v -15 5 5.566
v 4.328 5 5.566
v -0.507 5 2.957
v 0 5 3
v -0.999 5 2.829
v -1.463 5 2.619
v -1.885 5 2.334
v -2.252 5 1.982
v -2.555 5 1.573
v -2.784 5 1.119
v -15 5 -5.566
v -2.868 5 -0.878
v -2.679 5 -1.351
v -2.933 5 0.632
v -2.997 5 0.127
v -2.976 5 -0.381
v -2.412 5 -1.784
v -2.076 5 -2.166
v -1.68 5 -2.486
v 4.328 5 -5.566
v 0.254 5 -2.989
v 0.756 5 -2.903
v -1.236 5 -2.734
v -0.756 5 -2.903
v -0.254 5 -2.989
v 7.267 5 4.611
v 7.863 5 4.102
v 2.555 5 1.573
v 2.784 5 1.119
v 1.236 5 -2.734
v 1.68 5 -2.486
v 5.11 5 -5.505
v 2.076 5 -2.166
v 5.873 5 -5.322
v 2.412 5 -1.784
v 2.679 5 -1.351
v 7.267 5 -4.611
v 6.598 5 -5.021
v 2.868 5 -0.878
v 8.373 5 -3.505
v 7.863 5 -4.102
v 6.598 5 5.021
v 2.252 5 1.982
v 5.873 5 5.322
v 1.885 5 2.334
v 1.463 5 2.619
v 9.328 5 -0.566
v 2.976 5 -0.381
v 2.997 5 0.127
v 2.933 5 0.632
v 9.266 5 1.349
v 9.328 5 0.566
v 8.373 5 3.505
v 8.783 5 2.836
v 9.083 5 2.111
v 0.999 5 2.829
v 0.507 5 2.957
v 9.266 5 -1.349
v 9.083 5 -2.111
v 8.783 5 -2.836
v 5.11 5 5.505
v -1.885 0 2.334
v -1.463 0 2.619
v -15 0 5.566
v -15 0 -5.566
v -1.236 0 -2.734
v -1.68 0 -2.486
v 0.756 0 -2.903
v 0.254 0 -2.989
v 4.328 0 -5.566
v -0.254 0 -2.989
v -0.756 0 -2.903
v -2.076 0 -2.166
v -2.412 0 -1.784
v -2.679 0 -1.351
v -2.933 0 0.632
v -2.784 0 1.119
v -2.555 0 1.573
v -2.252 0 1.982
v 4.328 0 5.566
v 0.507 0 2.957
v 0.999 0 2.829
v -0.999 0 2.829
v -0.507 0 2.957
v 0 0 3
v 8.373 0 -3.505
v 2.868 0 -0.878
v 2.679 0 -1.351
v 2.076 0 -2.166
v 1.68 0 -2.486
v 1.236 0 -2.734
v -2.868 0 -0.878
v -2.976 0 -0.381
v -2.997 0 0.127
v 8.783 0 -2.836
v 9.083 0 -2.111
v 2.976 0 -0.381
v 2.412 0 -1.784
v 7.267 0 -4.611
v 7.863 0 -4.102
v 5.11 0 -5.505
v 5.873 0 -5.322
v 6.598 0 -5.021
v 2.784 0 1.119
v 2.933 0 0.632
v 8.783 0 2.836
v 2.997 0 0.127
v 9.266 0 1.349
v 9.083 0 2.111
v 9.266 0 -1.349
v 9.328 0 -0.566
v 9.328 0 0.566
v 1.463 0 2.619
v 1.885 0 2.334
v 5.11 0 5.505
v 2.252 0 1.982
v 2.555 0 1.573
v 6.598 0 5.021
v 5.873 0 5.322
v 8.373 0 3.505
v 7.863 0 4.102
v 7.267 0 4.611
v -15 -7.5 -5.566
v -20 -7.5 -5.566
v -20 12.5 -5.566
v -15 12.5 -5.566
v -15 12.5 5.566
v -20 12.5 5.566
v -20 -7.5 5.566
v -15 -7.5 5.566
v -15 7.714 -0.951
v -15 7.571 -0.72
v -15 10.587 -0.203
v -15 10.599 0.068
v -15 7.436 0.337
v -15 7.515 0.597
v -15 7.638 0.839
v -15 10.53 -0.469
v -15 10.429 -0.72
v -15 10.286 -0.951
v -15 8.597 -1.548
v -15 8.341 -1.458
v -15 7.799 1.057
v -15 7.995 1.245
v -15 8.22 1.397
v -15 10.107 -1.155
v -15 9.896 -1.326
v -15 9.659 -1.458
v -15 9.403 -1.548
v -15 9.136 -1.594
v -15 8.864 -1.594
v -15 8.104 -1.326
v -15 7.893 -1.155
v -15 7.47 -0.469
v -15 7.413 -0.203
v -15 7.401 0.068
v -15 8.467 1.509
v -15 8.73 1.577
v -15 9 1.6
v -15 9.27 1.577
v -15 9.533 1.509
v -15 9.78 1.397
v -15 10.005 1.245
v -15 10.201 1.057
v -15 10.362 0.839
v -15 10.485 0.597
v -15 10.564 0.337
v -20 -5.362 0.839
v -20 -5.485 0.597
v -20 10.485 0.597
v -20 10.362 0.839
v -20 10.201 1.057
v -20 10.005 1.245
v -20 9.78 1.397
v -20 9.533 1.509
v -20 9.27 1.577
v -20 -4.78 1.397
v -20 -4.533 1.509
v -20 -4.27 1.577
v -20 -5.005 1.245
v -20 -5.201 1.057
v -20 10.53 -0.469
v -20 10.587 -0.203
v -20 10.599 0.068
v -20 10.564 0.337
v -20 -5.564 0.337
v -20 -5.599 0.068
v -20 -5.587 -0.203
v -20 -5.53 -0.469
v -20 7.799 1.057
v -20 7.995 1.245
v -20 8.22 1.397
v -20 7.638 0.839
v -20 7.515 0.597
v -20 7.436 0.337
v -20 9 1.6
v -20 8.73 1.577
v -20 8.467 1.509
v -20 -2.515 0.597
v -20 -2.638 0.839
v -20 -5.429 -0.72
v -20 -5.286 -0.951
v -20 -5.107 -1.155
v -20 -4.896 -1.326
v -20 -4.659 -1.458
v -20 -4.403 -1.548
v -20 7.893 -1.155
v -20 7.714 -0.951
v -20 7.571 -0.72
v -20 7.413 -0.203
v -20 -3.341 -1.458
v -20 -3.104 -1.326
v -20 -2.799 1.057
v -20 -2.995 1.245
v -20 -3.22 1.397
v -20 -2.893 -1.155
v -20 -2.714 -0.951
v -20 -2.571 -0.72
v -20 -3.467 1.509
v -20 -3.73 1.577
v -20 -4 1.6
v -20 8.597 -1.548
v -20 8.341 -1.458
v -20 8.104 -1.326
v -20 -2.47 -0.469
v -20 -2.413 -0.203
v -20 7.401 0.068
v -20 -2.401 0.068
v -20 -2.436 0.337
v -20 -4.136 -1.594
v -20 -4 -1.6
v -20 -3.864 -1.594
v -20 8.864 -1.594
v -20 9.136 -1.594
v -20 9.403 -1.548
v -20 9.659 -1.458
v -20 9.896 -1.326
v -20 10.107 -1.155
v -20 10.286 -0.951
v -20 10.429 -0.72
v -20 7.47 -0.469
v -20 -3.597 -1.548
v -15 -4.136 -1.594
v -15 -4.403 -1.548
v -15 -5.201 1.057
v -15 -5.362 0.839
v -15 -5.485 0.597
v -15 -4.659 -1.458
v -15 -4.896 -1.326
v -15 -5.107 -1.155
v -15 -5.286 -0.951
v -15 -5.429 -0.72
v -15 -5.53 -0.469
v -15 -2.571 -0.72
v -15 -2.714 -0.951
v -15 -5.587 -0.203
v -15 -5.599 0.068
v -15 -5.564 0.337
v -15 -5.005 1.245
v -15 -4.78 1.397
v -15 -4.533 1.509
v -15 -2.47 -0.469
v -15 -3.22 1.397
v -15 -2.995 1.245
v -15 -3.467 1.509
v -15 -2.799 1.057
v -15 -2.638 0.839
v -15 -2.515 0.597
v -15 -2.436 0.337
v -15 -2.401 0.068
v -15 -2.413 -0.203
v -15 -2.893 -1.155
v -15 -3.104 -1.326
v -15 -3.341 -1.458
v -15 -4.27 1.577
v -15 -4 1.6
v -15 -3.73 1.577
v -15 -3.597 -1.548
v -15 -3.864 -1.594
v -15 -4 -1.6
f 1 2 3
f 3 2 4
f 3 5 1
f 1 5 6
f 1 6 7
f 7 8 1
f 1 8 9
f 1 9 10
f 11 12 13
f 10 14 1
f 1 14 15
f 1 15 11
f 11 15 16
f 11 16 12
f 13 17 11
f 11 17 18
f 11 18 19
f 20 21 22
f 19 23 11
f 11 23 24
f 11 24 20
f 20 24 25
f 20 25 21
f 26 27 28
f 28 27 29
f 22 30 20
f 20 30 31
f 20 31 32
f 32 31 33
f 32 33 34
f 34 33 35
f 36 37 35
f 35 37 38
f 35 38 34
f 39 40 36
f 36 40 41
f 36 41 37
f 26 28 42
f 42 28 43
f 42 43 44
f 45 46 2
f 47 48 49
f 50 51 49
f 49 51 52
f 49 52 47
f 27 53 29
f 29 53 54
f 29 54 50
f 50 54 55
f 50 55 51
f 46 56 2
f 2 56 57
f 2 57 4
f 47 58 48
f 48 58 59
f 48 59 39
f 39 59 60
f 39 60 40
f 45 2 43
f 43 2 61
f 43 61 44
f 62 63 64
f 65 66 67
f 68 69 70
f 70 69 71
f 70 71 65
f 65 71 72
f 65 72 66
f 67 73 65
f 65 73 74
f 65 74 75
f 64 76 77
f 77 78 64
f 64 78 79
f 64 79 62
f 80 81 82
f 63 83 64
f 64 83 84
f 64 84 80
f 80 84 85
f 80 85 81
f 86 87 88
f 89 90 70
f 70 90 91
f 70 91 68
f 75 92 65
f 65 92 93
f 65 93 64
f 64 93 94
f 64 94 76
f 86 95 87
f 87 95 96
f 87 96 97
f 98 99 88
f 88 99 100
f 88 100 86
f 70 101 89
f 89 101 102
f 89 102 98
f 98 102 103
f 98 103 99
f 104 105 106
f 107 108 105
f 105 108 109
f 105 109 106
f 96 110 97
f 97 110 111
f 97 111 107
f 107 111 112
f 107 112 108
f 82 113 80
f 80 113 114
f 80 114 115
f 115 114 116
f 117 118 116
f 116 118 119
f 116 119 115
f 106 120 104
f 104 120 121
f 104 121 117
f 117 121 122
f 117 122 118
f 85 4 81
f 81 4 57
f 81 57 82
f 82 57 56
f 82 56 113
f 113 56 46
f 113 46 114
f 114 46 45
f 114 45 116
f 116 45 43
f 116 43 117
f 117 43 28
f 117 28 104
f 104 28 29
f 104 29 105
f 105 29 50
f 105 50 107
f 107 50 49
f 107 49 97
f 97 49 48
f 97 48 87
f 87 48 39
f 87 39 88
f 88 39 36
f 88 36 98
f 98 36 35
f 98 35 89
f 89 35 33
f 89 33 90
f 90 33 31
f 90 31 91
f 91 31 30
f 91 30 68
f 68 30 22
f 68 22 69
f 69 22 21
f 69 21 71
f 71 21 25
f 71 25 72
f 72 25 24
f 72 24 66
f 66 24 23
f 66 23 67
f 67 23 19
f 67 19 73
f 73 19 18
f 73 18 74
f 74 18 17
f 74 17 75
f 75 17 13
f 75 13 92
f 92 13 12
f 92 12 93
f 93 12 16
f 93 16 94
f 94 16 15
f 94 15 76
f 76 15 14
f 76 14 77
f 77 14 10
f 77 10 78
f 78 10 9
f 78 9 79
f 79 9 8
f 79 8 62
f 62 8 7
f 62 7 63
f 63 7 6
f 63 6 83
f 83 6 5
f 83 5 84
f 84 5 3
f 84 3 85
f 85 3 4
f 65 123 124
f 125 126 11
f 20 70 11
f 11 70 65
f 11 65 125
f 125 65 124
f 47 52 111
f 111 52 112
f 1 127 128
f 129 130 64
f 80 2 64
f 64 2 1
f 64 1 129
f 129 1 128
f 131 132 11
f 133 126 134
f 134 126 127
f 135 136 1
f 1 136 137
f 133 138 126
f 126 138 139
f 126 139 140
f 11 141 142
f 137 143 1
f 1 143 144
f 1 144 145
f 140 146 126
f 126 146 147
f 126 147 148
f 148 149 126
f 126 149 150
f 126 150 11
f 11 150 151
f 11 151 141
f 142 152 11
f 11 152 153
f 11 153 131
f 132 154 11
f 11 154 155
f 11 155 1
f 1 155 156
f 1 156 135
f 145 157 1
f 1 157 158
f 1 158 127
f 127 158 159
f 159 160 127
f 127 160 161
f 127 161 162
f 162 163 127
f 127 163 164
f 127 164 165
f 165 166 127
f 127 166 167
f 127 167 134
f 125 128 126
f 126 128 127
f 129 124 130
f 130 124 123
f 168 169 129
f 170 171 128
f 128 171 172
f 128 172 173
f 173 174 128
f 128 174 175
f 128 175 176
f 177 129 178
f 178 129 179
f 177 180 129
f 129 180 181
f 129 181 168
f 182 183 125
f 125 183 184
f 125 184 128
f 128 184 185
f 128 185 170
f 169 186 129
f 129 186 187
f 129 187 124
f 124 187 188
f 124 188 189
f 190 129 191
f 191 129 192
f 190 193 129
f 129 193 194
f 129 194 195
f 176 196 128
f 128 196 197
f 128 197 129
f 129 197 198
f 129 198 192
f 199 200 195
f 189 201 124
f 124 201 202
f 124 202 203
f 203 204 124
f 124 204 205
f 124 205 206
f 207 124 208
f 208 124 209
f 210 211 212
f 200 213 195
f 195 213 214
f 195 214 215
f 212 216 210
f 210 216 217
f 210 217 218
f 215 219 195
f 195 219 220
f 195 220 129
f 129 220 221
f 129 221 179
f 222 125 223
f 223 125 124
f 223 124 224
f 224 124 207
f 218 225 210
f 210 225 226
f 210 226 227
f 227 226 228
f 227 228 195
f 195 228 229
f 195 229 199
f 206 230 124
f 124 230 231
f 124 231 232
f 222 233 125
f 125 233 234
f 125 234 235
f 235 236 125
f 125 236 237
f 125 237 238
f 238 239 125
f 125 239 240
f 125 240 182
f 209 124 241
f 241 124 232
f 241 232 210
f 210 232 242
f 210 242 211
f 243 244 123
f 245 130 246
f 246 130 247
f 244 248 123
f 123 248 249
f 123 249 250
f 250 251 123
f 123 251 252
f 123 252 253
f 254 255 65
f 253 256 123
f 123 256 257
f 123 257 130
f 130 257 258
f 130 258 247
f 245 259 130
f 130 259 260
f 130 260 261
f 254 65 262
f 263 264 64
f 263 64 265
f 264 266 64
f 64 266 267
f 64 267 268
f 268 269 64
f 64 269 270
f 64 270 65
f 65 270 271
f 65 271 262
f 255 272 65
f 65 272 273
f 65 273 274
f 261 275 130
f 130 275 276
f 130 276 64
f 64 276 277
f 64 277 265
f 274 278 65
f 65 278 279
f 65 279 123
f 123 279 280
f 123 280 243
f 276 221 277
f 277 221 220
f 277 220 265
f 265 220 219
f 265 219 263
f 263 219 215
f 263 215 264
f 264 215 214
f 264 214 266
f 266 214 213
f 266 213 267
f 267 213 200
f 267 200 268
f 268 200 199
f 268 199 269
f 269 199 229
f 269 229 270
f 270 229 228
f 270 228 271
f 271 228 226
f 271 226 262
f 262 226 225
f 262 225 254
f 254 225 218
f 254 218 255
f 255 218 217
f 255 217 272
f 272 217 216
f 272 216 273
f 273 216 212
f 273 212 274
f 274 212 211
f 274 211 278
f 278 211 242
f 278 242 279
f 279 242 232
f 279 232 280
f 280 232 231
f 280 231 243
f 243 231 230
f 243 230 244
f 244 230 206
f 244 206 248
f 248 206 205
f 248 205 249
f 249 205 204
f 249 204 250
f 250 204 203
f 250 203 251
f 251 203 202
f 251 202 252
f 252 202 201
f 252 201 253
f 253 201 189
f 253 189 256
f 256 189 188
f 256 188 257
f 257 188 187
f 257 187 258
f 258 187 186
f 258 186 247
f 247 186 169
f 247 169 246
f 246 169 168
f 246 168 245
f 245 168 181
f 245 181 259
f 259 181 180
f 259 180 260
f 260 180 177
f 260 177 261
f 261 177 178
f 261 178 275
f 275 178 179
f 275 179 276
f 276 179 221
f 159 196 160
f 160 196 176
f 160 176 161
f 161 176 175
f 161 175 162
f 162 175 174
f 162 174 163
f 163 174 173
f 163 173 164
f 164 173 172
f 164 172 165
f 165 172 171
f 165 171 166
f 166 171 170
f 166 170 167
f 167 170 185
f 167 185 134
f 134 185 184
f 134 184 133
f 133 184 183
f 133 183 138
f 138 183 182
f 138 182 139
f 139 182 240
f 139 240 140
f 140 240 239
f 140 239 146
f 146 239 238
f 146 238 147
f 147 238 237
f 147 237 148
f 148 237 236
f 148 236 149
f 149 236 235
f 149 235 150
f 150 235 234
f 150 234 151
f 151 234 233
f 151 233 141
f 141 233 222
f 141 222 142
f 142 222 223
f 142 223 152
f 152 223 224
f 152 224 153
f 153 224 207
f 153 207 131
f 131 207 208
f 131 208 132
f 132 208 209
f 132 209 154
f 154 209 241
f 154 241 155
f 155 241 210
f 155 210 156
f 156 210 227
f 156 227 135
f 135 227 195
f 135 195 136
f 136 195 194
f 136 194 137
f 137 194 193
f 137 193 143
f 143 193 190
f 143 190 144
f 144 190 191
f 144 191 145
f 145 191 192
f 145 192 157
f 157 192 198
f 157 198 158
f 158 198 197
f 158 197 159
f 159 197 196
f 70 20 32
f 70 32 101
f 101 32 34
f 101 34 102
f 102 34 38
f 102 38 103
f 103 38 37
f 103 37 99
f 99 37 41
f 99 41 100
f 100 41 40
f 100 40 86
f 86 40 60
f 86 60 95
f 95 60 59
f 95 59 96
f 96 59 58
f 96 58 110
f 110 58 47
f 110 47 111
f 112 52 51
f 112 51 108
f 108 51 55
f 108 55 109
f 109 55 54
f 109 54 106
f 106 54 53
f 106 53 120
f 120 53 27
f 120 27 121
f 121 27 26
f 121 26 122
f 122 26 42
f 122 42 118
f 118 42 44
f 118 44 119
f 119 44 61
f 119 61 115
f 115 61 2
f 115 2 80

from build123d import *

# Parameters (mm, degrees)
SKETCH1_W           = 30
SKETCH1_H           = 20
BOSS_EXTRUDE1_DEPTH = 5
SKETCH2_R           = 3
CUT_EXTRUDE1_DEPTH  = 10
SKETCH3_OUTSIDE_W   = 39.28
SKETCH3_OUTSIDE_H   = 29.28
SKETCH3_OUTSIDE_W_2 = 24.327904035
SKETCH3_OUTSIDE_H_2 = 11.132815548
CUT_EXTRUDE2_DEPTH  = 10
SKETCH4_W           = 11.132815548
SKETCH4_H           = 20
BOSS_EXTRUDE2_DEPTH = 5
SKETCH5_R           = 1.6
CUT_EXTRUDE3_DEPTH  = 5
FILLET2_R           = 5


with BuildPart() as part:
    # Sketch1 → Boss-Extrude1 (new body)
    with BuildSketch(Plane(origin=(0, 0, 0), x_dir=(1, 0, 0), z_dir=(0, 1, 0))):
        Rectangle(SKETCH1_W, SKETCH1_H)
    extrude(amount=BOSS_EXTRUDE1_DEPTH)

    # Sketch2 → Cut-Extrude1 (cut)
    with BuildSketch(Plane(origin=(0, 5, 0), x_dir=(1, 0, 0), z_dir=(0, 1, 0))):
        with Locations(Location((0, 0, 0), (0, 0, 270))):
            Circle(SKETCH2_R)
    extrude(amount=-CUT_EXTRUDE1_DEPTH, mode=Mode.SUBTRACT)

    # Sketch3 outside → Cut-Extrude2 (cut)
    with BuildSketch(Plane(origin=(0, 5, 0), x_dir=(1, 0, 0), z_dir=(0, 1, 0))):
        Rectangle(SKETCH3_OUTSIDE_W, SKETCH3_OUTSIDE_H)
        with Locations((-2.836047983, 0)):
            Rectangle(SKETCH3_OUTSIDE_W_2, SKETCH3_OUTSIDE_H_2, mode=Mode.SUBTRACT)
    extrude(amount=-CUT_EXTRUDE2_DEPTH, mode=Mode.SUBTRACT)

    # Sketch4 → Boss-Extrude2 (add)
    with BuildSketch(Plane.ZY.offset(15)):
        with Locations((0, 2.5)):
            Rectangle(SKETCH4_W, SKETCH4_H)
    extrude(amount=BOSS_EXTRUDE2_DEPTH)

    # Sketch5 → Cut-Extrude3 (cut)
    with BuildSketch(Plane.ZY.offset(20)):
        with Locations((0, 9)):
            Circle(SKETCH5_R)
        with Locations(Location((0, -4, 0), (0, 0, 180))):
            Circle(SKETCH5_R)
    extrude(amount=-CUT_EXTRUDE3_DEPTH, mode=Mode.SUBTRACT)

    # Fillet2
    fillet2_edges = [part.edges().sort_by_distance(p)[0] for p in [
        (9.327904035, 2.5, -5.566407774),
        (9.327904035, 2.5, 5.566407774),
    ]]
    fillet(fillet2_edges, radius=FILLET2_R)


solid = part.part
